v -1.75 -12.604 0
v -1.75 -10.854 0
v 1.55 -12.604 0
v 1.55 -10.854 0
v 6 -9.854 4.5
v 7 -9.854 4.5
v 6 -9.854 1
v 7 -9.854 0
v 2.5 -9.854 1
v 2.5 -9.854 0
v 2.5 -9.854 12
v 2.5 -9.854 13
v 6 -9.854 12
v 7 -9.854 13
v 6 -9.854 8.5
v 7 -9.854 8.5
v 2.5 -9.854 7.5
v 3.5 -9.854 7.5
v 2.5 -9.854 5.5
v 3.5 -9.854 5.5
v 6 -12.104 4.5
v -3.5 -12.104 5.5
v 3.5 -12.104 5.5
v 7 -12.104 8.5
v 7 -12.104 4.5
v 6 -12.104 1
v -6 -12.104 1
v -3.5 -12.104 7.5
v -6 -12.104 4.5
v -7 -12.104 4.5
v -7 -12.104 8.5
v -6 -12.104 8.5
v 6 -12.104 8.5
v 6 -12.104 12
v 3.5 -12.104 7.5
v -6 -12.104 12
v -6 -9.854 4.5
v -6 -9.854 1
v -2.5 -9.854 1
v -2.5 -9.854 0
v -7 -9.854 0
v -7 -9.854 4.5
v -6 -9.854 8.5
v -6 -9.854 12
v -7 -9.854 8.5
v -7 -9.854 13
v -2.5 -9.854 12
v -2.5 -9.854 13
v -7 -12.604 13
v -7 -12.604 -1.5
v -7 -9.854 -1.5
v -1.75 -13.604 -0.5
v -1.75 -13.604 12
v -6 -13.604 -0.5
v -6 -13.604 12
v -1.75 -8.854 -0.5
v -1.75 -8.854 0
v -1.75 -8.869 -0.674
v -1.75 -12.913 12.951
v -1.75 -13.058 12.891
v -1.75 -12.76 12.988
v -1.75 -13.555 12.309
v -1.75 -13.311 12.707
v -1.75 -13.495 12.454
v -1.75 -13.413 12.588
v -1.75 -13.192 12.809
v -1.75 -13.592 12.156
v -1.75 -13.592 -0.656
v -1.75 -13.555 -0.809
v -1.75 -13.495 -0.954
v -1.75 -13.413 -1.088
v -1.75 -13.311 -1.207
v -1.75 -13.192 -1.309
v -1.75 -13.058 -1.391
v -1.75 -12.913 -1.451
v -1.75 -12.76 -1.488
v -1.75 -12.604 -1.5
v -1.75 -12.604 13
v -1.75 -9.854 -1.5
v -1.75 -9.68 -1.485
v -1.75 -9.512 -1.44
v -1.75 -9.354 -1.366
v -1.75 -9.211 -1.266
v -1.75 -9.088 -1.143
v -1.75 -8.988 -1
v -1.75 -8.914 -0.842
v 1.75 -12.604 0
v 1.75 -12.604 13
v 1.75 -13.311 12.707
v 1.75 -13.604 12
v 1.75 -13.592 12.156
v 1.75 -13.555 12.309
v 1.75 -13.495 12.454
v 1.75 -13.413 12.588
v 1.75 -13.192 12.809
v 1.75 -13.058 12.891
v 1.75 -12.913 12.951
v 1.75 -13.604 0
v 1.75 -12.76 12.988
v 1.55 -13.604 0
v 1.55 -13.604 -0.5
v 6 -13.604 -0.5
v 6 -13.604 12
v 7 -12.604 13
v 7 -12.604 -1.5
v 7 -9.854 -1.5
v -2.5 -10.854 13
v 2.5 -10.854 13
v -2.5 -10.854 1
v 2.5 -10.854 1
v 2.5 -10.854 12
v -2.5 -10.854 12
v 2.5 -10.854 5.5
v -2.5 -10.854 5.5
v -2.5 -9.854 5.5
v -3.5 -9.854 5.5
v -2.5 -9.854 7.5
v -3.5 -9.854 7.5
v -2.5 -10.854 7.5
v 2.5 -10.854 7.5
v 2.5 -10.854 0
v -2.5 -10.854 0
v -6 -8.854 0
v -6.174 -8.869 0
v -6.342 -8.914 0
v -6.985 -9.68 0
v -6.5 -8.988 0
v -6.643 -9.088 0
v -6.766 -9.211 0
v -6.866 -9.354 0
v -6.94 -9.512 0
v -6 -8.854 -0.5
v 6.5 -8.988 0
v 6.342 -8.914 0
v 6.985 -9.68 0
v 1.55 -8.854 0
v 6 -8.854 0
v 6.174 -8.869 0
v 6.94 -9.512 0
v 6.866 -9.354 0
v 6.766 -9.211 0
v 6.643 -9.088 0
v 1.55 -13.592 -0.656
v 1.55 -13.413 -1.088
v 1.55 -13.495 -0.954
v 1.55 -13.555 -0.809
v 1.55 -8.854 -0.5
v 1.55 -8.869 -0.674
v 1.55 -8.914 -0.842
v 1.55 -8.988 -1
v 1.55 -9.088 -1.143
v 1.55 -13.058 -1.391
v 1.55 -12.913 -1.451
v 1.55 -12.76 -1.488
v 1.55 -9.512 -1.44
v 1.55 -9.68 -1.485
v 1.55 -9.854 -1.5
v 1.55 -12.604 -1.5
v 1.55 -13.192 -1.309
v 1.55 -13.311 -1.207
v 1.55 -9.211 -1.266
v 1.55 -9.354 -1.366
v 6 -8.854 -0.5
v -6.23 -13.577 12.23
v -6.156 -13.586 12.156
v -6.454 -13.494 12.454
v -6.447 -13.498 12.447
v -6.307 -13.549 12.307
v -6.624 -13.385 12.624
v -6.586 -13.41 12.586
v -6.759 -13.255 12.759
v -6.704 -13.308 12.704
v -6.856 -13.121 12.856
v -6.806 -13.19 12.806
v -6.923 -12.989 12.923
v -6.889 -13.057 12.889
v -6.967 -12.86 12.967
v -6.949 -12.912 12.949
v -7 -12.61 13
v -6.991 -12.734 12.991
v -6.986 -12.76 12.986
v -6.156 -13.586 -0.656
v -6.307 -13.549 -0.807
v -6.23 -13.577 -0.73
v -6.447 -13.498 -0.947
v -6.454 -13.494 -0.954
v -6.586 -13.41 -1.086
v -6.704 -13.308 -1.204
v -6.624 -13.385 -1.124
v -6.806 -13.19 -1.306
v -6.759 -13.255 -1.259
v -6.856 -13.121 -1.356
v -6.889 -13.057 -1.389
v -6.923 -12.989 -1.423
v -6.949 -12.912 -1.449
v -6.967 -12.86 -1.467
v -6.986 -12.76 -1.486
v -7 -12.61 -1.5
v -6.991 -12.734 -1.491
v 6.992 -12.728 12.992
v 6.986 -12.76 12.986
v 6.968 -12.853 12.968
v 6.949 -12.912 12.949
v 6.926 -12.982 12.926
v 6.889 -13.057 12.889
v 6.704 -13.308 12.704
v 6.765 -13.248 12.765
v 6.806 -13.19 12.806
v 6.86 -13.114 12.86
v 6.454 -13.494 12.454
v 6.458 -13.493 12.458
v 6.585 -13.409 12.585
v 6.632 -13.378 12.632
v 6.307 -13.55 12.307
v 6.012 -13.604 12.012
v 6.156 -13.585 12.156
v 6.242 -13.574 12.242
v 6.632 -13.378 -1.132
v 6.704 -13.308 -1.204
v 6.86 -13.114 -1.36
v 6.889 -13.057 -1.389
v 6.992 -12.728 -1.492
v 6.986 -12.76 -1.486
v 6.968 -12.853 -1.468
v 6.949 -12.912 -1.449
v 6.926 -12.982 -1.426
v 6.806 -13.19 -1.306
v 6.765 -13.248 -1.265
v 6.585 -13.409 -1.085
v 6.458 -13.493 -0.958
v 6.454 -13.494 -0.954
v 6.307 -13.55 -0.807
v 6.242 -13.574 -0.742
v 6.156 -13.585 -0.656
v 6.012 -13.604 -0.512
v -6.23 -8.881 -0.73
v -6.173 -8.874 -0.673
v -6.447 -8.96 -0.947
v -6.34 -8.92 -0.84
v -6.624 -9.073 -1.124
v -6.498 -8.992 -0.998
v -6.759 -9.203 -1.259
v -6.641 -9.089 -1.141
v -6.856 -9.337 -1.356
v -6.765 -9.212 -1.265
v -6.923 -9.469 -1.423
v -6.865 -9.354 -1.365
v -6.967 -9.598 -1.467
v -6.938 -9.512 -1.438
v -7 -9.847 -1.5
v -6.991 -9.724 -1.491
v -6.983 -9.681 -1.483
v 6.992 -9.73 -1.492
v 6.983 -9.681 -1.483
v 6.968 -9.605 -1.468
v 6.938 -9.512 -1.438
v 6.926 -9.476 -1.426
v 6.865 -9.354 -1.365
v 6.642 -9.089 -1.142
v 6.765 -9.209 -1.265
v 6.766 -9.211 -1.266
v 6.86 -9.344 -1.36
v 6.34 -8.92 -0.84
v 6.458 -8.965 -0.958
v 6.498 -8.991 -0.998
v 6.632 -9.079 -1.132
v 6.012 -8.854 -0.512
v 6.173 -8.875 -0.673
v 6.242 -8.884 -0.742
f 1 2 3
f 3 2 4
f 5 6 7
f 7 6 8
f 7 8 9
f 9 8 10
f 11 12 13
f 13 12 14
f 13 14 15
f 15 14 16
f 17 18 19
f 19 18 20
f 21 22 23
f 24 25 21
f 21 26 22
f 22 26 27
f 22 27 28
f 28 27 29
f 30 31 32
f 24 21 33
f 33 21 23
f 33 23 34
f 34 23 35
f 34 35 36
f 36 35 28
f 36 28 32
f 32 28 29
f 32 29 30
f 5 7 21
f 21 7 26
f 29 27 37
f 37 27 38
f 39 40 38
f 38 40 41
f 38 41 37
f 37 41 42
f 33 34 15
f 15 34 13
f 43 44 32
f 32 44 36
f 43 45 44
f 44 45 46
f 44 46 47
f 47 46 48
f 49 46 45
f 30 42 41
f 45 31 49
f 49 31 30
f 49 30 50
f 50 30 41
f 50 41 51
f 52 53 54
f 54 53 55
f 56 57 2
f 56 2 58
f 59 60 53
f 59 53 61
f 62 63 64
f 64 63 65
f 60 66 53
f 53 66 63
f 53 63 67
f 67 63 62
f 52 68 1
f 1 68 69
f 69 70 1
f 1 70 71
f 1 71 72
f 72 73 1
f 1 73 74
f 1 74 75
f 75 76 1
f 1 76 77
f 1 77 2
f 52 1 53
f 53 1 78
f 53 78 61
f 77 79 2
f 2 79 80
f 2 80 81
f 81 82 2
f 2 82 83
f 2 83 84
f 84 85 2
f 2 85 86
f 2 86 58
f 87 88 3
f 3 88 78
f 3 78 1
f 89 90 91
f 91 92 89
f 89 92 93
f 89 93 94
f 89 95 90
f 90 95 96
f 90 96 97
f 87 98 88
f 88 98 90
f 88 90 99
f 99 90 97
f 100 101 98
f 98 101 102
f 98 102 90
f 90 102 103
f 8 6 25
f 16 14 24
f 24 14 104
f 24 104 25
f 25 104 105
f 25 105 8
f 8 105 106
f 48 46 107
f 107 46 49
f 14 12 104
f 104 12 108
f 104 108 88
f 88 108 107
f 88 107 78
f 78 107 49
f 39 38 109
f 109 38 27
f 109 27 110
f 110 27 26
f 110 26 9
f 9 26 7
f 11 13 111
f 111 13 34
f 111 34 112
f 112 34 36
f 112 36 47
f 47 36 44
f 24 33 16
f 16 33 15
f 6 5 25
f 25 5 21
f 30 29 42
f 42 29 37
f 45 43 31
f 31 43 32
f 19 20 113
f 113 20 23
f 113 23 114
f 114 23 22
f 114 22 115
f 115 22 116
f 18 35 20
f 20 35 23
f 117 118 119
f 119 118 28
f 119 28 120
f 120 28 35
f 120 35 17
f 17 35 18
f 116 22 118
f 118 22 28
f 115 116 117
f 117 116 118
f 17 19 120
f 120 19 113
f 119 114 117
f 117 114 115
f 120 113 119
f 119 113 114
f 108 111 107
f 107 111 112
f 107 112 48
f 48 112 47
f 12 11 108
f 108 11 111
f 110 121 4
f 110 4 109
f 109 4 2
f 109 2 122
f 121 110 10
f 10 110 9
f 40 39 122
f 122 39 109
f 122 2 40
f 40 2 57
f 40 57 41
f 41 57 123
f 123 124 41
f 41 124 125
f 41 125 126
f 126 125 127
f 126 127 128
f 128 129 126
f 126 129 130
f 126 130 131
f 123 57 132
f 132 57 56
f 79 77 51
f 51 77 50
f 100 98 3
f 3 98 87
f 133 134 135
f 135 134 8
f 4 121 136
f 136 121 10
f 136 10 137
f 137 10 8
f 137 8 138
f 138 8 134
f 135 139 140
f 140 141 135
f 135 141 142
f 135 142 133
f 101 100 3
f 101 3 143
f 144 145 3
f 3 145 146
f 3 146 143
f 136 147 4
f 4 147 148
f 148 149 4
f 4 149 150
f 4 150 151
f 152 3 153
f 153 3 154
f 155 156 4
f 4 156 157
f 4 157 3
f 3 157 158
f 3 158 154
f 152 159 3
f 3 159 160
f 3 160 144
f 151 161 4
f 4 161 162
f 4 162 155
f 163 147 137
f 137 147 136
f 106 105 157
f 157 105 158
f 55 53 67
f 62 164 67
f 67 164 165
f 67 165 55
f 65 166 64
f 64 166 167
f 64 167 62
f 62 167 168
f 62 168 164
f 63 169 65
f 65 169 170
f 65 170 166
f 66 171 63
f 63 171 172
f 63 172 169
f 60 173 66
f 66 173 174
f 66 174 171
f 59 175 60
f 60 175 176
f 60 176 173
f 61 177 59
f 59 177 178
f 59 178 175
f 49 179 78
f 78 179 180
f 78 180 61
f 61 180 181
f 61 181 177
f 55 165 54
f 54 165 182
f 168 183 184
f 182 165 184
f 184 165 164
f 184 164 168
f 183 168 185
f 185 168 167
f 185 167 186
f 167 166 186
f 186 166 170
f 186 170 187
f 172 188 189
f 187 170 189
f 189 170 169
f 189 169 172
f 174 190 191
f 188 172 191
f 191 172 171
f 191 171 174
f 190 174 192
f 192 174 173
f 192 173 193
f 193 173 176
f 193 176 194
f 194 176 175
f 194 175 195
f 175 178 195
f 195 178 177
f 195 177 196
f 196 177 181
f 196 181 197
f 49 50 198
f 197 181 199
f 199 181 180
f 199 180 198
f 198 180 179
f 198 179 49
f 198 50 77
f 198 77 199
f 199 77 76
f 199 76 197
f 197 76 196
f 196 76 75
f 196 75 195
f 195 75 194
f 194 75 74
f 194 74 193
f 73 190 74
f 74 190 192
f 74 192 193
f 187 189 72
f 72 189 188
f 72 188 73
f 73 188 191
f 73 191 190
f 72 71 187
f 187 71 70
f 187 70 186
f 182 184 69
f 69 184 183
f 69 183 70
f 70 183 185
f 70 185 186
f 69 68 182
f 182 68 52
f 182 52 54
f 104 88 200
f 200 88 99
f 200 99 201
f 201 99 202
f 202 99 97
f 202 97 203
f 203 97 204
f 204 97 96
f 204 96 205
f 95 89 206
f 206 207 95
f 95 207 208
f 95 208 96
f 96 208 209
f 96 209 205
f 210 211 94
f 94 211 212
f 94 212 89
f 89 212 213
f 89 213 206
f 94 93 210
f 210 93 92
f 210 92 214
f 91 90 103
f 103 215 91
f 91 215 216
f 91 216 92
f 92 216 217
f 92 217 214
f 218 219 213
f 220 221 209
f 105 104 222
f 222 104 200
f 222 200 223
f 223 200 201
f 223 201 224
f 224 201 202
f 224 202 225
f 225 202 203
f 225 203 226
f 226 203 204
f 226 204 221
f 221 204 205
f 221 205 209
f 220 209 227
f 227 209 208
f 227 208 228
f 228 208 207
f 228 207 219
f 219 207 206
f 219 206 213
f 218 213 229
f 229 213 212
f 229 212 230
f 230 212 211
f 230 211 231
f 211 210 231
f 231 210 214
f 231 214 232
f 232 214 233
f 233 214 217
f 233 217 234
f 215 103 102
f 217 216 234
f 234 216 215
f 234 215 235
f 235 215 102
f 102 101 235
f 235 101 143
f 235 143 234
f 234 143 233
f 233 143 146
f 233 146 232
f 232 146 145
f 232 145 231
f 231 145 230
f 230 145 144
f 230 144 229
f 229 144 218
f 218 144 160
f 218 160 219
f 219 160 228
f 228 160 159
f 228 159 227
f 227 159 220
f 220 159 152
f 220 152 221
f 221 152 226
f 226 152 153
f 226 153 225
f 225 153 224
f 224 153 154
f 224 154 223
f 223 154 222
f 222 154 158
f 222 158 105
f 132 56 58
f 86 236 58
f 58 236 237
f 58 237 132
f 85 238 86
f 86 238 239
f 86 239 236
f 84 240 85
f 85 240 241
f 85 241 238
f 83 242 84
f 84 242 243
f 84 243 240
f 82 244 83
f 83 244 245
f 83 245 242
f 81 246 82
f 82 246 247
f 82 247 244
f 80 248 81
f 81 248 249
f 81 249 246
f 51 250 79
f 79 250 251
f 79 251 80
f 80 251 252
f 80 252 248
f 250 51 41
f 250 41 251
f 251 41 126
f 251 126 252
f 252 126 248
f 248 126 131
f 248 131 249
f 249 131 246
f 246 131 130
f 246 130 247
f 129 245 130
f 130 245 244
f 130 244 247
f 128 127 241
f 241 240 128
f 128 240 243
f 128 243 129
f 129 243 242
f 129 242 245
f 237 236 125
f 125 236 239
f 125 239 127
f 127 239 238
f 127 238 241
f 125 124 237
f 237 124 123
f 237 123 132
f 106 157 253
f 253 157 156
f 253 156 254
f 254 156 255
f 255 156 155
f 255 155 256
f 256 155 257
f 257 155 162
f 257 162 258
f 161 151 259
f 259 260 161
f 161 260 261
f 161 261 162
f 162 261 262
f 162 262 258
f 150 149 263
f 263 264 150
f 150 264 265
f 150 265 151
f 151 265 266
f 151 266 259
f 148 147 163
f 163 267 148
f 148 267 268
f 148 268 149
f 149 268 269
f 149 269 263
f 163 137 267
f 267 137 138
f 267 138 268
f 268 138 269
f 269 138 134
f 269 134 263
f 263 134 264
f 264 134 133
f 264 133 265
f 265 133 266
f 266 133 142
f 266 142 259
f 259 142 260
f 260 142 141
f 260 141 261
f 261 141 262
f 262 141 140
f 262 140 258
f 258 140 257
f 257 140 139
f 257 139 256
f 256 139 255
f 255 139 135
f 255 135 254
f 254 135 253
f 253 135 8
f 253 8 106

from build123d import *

# Parameters (mm, degrees)
BOSS_EXTRUDE1_DEPTH = 13
SKETCH2_W           = 12.000442616
SKETCH2_H           = 1
BOSS_EXTRUDE2_DEPTH = 2.25
CUT_EXTRUDE2_REACH  = 25.453
SKETCH5_W           = 4
SKETCH5_H           = 2.25
SKETCH6_W           = 7
SKETCH6_H           = 2
BOSS_EXTRUDE4_DEPTH = 2.25
SKETCH4_W           = 5
SKETCH4_H           = 1
CUT_EXTRUDE1_DEPTH  = 21.076474399
SKETCH7_W           = 5.25
SKETCH7_H           = 4.75
SKETCH7_W_2         = 5.45
BOSS_EXTRUDE5_DEPTH = 1.5
FILLET5_R           = 1
FILLET6_R           = 1


with BuildPart() as part:
    # Sketch1 → Boss-Extrude1 (new body)
    with BuildSketch(Plane.XY):
        Polygon((-7, -13.603853288), (-1.75, -13.603853288), (-1.75, -12.603853288), (1.75, -12.603853288), (1.75, -13.603853288), (7, -13.603853288), (7, -12.103853288), (7, -9.853853288), (6.000442616, -9.853853288), (6.000442616, -12.103853288), (-6, -12.103853288), (-6, -9.853853288), (-7, -9.853853288), (-7, -12.103853288), align=None)
    extrude(amount=BOSS_EXTRUDE1_DEPTH)

    # Sketch2 → Boss-Extrude2 (add)
    with BuildSketch(Plane(origin=(0, -12.103853288, 0), x_dir=(1, 0, 0), z_dir=(0, 1, 0))):
        with Locations((0.000221308, -0.5)):
            Rectangle(SKETCH2_W, SKETCH2_H)
        with Locations((0.000221308, -12.5)):
            Rectangle(SKETCH2_W, SKETCH2_H)
    extrude(amount=BOSS_EXTRUDE2_DEPTH)

    # Cut-Extrude2: up to this face of the body (flat: up to its plane)
    cut_extrude2_end = Plane(part.part.faces().sort_by_distance((7, -11.728853288, 6.5))[0])
    # Sketch5 → Cut-Extrude2 (cut, up to the picked face)
    with BuildSketch(Plane.ZY.offset(7), mode=Mode.PRIVATE) as cut_extrude2_sk1:
        with Locations((6.5, -10.978853288)):
            Rectangle(SKETCH5_W, SKETCH5_H)
    cut_extrude2_tool1 = split(extrude(cut_extrude2_sk1.sketch, amount=-CUT_EXTRUDE2_REACH, mode=Mode.PRIVATE), bisect_by=cut_extrude2_end, keep=Keep.BOTH, mode=Mode.PRIVATE)
    add(cut_extrude2_tool1.solids().sort_by(Axis((-7, -10.978853, 6.5), (1, 0, 0)))[0], mode=Mode.SUBTRACT)

    # Sketch6 → Boss-Extrude4 (add)
    with BuildSketch(Plane(origin=(0, -12.103853288, 0), x_dir=(1, 0, 0), z_dir=(0, 1, 0))):
        with Locations((0, -6.5)):
            Rectangle(SKETCH6_W, SKETCH6_H)
    extrude(amount=BOSS_EXTRUDE4_DEPTH)

    # Sketch4 → Cut-Extrude1 (cut, through all)
    with BuildSketch(Plane(origin=(0, 0, 0), x_dir=(-1, 0, 0), z_dir=(0, 0, -1))):
        with Locations((0, -10.353853288)):
            Rectangle(SKETCH4_W, SKETCH4_H)
    extrude(amount=-CUT_EXTRUDE1_DEPTH, mode=Mode.SUBTRACT)

    # Sketch7 → Boss-Extrude5 (add)
    with BuildSketch(Plane(origin=(0, 0, 0), x_dir=(-1, 0, 0), z_dir=(0, 0, -1))):
        with Locations((4.375, -11.228853288)):
            Rectangle(SKETCH7_W, SKETCH7_H)
        with Locations((-4.275, -11.228853288)):
            Rectangle(SKETCH7_W_2, SKETCH7_H)
    extrude(amount=BOSS_EXTRUDE5_DEPTH)

    # Fillet5
    fillet5_edges = [part.edges().sort_by_distance(p)[0] for p in [
        (4.375, -13.603853288, 13),
        (-4.375, -13.603853288, -1.5),
        (-4.375, -13.603853288, 13),
        (-7, -13.603853288, 5.75),
        (7, -13.603853288, 5.75),
        (4.275, -13.603853288, -1.5),
    ]]
    fillet(fillet5_edges, radius=FILLET5_R)

    # Fillet6
    fillet6_edges = [part.edges().sort_by_distance(p)[0] for p in [
        (-7, -8.853853288, -0.75),
        (7, -8.853853288, -0.75),
        (-4.375, -8.853853288, -1.5),
        (4.275, -8.853853288, -1.5),
    ]]
    fillet(fillet6_edges, radius=FILLET6_R)


solid = part.part
